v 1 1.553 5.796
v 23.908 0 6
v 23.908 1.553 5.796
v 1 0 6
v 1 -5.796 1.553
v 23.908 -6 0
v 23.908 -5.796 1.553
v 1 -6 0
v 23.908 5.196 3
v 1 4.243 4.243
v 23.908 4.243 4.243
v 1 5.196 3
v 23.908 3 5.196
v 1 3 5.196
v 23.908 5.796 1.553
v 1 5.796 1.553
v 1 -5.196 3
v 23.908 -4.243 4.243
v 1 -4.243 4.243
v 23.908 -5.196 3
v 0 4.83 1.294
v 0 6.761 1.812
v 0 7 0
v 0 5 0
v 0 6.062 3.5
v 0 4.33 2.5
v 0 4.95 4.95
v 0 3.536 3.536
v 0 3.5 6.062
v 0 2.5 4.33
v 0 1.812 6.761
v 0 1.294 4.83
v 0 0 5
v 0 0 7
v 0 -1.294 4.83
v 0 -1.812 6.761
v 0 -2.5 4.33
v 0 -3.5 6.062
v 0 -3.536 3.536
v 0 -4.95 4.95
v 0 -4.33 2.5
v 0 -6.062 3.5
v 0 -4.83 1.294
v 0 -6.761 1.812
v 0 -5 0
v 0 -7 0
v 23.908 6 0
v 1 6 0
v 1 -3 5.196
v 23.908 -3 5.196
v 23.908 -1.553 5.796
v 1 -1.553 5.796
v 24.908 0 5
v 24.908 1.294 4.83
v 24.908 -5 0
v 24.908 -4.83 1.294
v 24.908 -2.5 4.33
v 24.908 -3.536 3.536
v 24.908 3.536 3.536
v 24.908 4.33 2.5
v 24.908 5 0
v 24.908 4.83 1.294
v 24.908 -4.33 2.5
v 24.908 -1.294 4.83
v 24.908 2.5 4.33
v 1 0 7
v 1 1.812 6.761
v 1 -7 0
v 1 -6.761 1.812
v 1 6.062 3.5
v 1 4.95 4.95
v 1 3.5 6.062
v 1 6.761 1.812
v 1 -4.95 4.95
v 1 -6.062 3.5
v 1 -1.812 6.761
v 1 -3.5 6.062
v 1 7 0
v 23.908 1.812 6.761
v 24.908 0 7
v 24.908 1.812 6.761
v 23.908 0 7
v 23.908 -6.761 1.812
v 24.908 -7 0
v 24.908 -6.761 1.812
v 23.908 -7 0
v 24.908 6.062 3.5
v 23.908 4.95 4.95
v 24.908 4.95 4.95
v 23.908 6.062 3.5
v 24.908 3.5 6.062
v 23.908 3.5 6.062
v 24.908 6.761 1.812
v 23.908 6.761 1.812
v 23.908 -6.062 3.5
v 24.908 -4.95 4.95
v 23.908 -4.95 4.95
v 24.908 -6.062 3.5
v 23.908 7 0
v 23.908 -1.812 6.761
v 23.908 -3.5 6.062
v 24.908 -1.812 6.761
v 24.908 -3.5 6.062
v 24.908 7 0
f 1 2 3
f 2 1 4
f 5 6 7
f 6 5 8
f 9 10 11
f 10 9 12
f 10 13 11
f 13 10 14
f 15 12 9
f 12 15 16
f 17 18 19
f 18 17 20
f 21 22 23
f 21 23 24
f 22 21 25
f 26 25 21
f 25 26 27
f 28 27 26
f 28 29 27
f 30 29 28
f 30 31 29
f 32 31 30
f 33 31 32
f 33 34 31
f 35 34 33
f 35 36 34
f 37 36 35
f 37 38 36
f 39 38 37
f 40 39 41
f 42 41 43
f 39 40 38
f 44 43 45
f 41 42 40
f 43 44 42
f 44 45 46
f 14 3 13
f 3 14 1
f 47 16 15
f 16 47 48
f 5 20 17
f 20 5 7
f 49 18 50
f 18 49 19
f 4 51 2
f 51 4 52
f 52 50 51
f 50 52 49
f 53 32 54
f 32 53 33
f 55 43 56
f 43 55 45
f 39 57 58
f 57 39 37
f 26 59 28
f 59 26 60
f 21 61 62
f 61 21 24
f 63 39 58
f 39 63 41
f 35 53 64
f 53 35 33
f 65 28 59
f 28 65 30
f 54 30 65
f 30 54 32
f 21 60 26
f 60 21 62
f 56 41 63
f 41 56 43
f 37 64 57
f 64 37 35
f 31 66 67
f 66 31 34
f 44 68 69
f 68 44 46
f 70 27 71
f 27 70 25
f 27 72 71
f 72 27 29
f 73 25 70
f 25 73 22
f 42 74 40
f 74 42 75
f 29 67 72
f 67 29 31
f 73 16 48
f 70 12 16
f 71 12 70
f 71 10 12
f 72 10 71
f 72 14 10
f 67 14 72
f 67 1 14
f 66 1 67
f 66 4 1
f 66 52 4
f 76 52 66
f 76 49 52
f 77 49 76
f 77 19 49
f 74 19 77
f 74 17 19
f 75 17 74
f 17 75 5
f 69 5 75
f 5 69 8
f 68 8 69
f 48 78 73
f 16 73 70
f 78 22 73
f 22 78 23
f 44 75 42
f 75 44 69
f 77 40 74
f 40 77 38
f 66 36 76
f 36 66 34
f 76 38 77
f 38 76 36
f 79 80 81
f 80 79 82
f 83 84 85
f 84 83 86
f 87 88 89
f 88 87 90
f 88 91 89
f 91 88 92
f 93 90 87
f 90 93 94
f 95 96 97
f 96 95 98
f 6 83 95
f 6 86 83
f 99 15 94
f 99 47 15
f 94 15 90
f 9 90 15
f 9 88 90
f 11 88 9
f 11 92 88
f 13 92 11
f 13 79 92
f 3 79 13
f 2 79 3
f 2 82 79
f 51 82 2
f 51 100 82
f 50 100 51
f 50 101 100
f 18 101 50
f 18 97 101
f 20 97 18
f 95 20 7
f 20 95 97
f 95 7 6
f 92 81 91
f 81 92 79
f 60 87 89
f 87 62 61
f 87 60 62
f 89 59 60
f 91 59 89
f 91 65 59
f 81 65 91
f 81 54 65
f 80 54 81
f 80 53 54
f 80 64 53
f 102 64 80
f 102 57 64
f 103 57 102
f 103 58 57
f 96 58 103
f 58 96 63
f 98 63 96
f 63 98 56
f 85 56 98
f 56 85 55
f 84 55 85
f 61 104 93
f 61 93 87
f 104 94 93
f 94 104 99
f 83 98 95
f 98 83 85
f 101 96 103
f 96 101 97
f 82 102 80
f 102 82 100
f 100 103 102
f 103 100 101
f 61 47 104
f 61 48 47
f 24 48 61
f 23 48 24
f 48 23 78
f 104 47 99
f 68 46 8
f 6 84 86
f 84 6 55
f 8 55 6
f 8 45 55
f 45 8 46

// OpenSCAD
// file: ../build_environments.scad
// build_environments.scad: modules to build level sections
//

module pool(diameter=10.0, wall_height=2.0, step_width=3.0, connections=[])
{
    difference() {
        union() {
        difference() {
            cylinder(h=0.5,r1=diameter+step_width,r2=diameter+step_width,$fn=48);
            translate([0,0,-0.1])
                cylinder(h=0.7,r1=diameter,r2=diameter,$fn=48);
        }
        difference() {
            cylinder(h=wall_height,r1=diameter+step_width+1.0,r2=diameter+step_width+1.0,$fn=48);
            translate([0,0,-0.1])
                cylinder(h=wall_height+0.2,r1=diameter+step_width,r2=diameter+step_width,$fn=48);
        }
        }
    
        for (c = connections)
        {
            rotate([0,90,0]) {
                angle = atan2(c[1],c[0]);
                rotate([-angle,0,0]) {
                    cylinder(h=diameter+5.0,r1=c[2],r2=c[2],$fn=48);
                }
            }
        }
    }
}

module straight(length=10.0, width=2.0, dy1=0.0, dy2=0.0, dz=0.0)
{
    dims = [0, 0, 0, 0, 0, (dz/length)];
    matrix = [
        [ 1, dims[0], dims[1], 0 ],
        [ dims[2], 1, dims[4], 0 ],
        [ dims[5], dims[3], 1, 0 ],
        [ 0, 0, 0, 1 ]
    ];
    multmatrix(matrix)
    difference() {
        translate([dy1,0,0])
        union() {
            rotate([0,90,0]) {
                difference() {
                    cylinder(h=(length-dy1-dy2),r1=width+1.0,r2=width+1.0,$fn=24);
                    translate([0,0,-0.1])
                        cylinder(h=(length-dy1-dy2+0.2),r1=width,r2=width,$fn=24);
                }
                difference() {
                    cylinder(h=1.0,r1=width+2.0,r2=width+2.0,$fn=24);
                    translate([0,0,-0.1])
                        cylinder(h=1.2,r1=width,r2=width,$fn=24);
                }
                translate([0,0,(length-dy1-dy2)-1.0]) {
                    difference() {
                        cylinder(h=1.0,r1=width+2.0,r2=width+2.0,$fn=24);
                        translate([0,0,-0.1])
                            cylinder(h=1.2,r1=width,r2=width,$fn=24);
                    }
                }
            }
        }
        translate([0,0,-(2*width+4.0)/2])
            cube([3*length,3*length,2*width+4.0],center=true);
    }
}

module curve(p0=[0,0], center=[0,0], dir=1, angle=0.0, width=2.0)
{
    radius = sqrt((p0[0]-center[0])*(p0[0]-center[0]) + (p0[1]-center[1])*(p0[1]-center[1]));
    if (dir == 0) {
        difference() {
            rotate([0,0,-90])
            difference() {
                rotate_extrude(angle = angle, convexity = 10, $fn=32)
                    translate([radius, 0, 0])
                        circle(r = width+1.0,$fn=24);
                rotate([0,0,-1.0])
                    rotate_extrude(angle = angle+2.0, convexity = 10, $fn=32)
                        translate([radius, 0, 0])
                            circle(r = width,$fn=24);
            }
            translate([0,0,-(2*width+4.0)/2])
                cube([5*radius,5*radius,2*width+4.0],center=true);
        }
    }
    else {
        difference() {
            rotate([0,0,90])
            difference() {
                rotate_extrude(angle = -angle, convexity = 10, $fn=32)
                    translate([radius, 0, 0])
                        circle(r = width+1.0,$fn=24);
                rotate([0,0,1.0])
                    rotate_extrude(angle = -angle-2.0, convexity = 10, $fn=32)
                        translate([radius, 0, 0])
                            circle(r = width,$fn=24);
            }
            translate([0,0,-(2*width+4.0)/2])
                cube([5*radius,5*radius,2*width+4.0],center=true);
        }
    }

}

// test pool
//pool(diameter=12.0000, wall_height=3.0000, step_width=3.0000, connections=[[0.0000,-26.0000,2.0000], [23.6074,0.0000,2.0000]]);

// test straight, slope
//straight(length=26.0000, width=2.0000, dy1=11.8322, dy2=6.7082, dz=0.0000);
//straight(length=29.1549, width=12.0000, dy1=0.0000, dy2=0.0000, dz=-15.0000);

// test curve
//curve(p0=[23.6074, 0.0000], center=[23.6074, 5.0000], dir=0, angle=60.1011, width=2.0000);
//curve(p0=[33.6426, 12.4219], center=[37.9771, 9.9295], dir=1, angle=120.4627, width=2.0000);
// main file
use <../build_environments.scad>;
straight(length=24.9075, width=5.0000, dy1=0.0000, dy2=0.0000, dz=0.0000);
